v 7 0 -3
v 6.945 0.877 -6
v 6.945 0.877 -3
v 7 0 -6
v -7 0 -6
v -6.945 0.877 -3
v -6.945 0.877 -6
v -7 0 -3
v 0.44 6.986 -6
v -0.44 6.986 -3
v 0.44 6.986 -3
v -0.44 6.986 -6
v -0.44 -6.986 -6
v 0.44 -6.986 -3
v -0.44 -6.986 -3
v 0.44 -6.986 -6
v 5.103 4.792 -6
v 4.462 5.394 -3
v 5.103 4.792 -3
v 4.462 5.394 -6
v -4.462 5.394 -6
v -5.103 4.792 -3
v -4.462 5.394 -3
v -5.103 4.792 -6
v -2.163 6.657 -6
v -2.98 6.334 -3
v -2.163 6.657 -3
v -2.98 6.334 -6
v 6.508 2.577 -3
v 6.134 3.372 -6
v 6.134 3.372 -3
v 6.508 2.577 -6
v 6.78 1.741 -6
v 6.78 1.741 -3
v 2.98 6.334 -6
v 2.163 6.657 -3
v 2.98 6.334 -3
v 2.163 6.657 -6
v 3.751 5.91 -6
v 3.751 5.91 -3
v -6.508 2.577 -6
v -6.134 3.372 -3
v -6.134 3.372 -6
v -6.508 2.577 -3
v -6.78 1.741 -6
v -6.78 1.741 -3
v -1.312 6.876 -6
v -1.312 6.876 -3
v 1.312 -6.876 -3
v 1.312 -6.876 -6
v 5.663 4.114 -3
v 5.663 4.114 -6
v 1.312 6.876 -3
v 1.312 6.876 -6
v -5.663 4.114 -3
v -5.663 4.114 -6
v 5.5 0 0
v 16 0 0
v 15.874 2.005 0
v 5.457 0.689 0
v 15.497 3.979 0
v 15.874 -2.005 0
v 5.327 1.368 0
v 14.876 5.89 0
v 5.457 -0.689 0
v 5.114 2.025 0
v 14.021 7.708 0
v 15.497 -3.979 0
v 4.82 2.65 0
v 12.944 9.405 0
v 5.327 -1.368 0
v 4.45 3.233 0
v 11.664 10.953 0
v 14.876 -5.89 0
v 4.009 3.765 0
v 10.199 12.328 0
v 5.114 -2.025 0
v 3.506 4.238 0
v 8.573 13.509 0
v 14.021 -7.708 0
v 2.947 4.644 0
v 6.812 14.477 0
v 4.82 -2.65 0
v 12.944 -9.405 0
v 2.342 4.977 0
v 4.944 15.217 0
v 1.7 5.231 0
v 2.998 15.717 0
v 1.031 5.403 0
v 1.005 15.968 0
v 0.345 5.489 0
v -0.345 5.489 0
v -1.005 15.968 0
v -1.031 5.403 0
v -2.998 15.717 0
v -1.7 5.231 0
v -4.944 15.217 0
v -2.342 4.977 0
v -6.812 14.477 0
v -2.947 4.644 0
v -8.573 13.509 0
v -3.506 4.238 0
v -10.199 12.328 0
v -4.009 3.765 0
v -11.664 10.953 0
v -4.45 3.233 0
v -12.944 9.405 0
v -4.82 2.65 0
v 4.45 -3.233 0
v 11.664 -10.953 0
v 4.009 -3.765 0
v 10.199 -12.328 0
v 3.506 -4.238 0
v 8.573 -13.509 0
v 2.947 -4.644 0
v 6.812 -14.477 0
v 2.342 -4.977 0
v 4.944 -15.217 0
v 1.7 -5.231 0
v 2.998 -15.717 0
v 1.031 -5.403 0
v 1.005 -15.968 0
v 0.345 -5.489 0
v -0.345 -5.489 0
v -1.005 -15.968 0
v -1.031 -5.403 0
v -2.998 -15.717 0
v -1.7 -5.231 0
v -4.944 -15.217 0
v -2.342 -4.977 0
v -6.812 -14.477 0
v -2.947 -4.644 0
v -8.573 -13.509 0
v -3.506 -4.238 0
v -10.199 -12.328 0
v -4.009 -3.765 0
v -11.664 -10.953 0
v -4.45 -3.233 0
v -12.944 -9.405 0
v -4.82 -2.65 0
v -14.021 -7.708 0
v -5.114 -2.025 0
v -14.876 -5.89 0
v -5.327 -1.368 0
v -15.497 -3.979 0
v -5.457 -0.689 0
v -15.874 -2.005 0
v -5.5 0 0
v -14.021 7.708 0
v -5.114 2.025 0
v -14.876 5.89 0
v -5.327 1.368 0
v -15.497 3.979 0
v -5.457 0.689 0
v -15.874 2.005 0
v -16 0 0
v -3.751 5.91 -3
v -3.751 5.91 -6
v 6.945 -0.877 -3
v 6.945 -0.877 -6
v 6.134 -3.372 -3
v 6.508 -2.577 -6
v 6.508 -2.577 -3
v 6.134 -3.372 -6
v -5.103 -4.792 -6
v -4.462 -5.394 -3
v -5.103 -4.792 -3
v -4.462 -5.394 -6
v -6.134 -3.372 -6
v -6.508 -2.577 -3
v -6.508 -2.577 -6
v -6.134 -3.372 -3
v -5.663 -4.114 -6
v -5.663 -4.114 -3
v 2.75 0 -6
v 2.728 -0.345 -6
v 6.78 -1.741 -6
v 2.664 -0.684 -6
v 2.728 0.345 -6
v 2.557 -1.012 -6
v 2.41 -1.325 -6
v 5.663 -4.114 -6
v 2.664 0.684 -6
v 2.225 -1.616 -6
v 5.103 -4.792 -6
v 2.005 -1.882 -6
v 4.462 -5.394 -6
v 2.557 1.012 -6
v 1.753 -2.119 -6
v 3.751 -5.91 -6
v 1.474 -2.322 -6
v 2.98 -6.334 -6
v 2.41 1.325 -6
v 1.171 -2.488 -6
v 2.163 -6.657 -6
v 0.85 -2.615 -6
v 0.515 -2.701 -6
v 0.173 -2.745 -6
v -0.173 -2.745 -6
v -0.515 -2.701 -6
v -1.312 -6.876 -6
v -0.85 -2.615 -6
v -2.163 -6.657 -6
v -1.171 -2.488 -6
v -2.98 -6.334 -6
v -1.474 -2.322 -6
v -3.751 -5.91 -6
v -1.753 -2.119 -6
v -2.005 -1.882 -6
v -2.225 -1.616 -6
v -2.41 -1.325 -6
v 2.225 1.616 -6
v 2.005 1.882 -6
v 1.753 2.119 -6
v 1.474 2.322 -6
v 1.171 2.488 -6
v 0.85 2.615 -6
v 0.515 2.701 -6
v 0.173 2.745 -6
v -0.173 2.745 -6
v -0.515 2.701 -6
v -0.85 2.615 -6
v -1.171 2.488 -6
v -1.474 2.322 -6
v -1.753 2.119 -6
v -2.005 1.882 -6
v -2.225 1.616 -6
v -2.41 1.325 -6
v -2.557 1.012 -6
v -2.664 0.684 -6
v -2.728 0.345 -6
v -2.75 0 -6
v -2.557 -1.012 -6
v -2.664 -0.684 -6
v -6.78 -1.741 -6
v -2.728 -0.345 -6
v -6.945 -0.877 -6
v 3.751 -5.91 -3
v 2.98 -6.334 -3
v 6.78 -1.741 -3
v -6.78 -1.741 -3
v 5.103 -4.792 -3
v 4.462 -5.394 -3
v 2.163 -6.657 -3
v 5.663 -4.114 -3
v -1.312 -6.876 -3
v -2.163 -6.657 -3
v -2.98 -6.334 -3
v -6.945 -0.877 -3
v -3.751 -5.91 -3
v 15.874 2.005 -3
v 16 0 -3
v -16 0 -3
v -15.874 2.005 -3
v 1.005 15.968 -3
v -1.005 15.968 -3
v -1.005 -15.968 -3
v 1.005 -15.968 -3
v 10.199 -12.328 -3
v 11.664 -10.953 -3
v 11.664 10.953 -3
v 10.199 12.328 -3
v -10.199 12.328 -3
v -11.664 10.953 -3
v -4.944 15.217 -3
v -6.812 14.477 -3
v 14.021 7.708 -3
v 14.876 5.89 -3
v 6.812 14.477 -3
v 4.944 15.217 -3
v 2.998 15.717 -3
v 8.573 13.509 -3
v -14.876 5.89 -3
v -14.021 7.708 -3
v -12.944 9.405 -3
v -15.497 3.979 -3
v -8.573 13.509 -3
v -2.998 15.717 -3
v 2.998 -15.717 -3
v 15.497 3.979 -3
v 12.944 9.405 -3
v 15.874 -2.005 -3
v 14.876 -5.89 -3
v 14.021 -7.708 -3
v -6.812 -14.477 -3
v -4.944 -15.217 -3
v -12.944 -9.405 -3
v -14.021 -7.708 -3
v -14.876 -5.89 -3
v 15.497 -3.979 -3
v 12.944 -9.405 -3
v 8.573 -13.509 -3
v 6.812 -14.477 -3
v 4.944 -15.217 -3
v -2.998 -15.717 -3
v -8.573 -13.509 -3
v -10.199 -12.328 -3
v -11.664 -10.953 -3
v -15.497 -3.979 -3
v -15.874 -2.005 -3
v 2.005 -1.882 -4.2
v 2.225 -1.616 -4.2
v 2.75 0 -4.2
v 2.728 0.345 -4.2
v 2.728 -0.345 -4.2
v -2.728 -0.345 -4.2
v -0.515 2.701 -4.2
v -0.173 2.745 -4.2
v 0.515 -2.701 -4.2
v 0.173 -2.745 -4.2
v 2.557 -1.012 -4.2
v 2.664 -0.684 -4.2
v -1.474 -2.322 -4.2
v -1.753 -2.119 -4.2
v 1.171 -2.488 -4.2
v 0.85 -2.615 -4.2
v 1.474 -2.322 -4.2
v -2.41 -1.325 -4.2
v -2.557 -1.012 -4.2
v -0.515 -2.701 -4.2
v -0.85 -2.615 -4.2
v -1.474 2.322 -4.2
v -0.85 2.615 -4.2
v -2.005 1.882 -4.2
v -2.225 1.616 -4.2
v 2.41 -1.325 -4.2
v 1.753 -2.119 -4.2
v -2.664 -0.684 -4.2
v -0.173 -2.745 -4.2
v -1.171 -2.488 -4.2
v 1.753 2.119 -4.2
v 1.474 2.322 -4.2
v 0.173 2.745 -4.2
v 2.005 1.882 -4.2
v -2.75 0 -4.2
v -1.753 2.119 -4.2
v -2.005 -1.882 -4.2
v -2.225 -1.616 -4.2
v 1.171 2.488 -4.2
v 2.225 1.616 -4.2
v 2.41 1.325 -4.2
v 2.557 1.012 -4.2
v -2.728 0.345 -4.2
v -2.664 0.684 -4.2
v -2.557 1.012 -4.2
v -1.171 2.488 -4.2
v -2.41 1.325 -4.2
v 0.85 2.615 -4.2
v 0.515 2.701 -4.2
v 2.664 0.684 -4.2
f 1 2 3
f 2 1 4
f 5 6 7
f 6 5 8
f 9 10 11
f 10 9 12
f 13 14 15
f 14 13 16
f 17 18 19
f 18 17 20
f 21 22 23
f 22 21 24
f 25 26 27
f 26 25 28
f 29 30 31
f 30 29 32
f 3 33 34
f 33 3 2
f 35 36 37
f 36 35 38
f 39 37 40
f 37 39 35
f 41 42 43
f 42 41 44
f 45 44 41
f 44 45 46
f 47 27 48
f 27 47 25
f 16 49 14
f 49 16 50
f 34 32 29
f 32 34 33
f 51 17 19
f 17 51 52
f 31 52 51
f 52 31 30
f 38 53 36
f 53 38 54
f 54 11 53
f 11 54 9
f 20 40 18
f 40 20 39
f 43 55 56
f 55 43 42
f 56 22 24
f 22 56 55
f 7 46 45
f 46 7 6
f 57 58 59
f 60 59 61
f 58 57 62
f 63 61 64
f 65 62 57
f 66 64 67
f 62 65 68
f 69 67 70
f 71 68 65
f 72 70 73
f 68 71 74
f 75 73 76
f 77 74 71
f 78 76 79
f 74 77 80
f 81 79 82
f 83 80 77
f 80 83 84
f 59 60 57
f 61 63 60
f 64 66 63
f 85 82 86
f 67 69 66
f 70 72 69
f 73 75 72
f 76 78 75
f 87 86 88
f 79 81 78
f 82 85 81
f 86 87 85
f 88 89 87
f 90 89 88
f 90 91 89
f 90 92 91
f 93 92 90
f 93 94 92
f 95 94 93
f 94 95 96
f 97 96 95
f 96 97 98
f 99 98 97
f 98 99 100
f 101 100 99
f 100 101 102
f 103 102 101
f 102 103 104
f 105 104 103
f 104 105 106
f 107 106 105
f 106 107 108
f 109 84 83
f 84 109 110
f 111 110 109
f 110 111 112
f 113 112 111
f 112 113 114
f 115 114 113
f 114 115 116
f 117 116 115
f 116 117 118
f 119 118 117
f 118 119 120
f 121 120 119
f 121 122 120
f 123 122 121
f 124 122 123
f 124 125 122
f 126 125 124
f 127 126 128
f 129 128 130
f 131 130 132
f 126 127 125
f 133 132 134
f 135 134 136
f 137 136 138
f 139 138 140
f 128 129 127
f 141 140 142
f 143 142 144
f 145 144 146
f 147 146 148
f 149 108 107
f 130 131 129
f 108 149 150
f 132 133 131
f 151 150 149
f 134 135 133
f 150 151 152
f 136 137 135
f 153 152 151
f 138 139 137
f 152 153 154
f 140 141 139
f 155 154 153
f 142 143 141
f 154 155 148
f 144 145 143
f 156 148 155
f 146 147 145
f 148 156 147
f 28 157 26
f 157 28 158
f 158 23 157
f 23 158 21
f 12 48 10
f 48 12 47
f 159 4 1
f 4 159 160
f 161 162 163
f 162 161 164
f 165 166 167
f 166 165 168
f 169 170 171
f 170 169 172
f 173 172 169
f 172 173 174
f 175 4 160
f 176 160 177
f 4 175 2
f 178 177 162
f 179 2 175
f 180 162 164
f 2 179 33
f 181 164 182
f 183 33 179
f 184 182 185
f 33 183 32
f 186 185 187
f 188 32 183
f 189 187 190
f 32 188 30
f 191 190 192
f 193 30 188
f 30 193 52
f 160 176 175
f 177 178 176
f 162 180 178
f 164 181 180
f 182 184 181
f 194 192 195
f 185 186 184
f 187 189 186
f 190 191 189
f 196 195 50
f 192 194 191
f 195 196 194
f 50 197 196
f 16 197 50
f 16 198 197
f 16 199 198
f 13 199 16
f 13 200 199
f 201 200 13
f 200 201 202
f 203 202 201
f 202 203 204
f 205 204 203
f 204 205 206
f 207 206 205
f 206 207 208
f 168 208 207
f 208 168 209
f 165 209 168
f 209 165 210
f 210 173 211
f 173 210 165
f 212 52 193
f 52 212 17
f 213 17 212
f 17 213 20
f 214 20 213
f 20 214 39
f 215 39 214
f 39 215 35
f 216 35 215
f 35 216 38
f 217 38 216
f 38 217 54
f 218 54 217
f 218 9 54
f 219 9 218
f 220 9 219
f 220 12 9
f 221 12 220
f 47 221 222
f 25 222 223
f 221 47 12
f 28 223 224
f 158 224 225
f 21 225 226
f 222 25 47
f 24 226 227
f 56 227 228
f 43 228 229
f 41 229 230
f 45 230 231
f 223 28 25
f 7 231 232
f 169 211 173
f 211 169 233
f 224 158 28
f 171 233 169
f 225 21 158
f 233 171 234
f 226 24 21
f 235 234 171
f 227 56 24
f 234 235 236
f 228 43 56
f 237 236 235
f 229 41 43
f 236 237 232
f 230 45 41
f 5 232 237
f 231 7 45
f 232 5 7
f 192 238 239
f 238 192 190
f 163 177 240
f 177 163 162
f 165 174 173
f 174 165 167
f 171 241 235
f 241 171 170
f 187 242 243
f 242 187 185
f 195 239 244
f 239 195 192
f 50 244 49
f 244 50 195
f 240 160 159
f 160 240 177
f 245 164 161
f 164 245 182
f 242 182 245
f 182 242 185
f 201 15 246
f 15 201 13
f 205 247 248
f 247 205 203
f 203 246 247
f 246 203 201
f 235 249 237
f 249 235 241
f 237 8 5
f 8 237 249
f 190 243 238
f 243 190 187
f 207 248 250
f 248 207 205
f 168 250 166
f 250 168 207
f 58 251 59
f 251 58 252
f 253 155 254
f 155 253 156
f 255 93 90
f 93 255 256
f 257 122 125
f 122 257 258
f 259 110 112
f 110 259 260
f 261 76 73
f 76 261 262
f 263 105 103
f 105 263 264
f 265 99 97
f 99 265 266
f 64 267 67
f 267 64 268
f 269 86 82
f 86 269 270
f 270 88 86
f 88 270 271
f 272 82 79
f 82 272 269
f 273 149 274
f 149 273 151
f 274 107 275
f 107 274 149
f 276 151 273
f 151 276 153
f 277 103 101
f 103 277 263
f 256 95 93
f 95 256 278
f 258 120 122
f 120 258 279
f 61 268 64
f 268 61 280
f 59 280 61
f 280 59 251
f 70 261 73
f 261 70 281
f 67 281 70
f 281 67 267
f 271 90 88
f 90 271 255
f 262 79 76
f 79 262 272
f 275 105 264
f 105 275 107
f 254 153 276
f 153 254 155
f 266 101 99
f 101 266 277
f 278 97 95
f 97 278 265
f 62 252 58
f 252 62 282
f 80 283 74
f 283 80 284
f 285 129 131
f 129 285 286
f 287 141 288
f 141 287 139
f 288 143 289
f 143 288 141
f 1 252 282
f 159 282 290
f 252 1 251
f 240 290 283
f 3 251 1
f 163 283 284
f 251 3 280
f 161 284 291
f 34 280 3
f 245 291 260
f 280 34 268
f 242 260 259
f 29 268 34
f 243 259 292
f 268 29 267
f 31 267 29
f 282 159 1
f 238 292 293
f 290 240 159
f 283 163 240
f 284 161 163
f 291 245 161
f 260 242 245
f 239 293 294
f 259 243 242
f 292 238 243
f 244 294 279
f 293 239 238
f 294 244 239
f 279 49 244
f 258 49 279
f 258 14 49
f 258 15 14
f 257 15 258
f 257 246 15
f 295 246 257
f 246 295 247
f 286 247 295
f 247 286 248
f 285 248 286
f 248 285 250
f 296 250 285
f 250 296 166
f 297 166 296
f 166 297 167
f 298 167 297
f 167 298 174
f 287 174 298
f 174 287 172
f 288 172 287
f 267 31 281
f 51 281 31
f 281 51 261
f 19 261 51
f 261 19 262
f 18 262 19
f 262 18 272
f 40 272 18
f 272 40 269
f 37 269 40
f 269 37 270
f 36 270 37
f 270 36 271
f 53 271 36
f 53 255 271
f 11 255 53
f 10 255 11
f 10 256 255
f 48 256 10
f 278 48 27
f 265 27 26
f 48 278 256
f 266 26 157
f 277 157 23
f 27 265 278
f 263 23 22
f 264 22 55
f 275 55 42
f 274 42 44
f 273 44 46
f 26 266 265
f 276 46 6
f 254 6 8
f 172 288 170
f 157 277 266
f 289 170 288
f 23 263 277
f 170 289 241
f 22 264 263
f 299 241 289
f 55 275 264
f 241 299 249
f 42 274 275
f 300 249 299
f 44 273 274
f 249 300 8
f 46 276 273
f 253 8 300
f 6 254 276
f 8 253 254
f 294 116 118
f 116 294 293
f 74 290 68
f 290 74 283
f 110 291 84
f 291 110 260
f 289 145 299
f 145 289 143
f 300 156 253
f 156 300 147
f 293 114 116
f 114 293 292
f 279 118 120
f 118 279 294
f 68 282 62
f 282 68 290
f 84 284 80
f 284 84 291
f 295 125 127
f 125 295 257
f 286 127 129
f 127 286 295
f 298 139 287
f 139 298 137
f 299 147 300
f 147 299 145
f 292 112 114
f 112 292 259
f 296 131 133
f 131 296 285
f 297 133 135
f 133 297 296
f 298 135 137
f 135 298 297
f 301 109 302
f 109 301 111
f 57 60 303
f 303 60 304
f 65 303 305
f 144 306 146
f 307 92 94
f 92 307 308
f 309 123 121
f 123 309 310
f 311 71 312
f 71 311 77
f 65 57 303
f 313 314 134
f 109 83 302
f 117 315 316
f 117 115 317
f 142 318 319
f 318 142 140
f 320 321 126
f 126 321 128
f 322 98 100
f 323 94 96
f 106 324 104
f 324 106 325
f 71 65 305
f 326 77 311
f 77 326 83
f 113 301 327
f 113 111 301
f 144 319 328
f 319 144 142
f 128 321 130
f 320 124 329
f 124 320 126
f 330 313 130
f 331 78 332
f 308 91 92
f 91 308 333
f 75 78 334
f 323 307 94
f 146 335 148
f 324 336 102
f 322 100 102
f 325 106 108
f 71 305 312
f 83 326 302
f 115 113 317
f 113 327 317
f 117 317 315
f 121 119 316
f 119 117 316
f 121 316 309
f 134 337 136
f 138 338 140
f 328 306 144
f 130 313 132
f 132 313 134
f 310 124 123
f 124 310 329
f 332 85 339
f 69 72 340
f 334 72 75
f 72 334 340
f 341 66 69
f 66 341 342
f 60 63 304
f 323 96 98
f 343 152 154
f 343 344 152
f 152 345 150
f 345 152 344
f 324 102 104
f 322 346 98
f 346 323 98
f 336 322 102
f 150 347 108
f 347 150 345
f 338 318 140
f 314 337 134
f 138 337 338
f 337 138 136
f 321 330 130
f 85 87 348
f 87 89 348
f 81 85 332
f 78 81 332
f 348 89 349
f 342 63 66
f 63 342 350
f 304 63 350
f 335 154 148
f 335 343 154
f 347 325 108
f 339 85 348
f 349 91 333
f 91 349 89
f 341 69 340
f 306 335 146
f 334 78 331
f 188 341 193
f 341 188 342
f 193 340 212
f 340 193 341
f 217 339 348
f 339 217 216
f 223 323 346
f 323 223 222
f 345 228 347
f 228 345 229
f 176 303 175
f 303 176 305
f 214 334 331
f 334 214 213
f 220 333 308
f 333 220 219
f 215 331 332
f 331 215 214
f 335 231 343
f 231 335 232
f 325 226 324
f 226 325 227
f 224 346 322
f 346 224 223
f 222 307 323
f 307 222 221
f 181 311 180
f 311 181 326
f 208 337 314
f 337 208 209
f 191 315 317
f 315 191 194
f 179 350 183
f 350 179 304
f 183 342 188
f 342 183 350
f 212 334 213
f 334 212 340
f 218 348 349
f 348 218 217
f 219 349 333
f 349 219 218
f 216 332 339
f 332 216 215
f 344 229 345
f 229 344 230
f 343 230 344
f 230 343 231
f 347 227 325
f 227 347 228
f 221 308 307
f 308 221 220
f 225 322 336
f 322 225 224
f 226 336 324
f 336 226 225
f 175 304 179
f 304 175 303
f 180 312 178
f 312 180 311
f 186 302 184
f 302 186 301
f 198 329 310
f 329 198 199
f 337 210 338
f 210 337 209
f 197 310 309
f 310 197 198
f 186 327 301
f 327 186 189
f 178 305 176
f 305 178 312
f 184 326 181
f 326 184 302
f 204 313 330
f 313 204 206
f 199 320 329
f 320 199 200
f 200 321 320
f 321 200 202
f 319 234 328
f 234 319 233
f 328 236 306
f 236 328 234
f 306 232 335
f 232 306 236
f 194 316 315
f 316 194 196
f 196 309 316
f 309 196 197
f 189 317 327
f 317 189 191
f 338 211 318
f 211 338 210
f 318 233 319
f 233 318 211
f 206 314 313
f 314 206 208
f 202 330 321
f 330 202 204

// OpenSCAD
$fn = 50;


difference() {
	union() {
		translate(v = [0, 0, -6.0000000000]) {
			cylinder(h = 6, r = 7.0000000000);
		}
		translate(v = [0, 0, -3.0000000000]) {
			cylinder(h = 3, r = 16.0000000000);
		}
	}
	union() {
		translate(v = [0, 0, 0]) {
			rotate(a = [0, 0, 0]) {
				difference() {
					union() {
						#translate(v = [0, 0, -6.0000000000]) {
							cylinder(h = 6, r = 2.2500000000);
						}
						#translate(v = [0, 0, -4.2000000000]) {
							cylinder(h = 4.2000000000, r1 = 2.7500000000, r2 = 5.5000000000);
						}
						#translate(v = [0, 0, -6.0000000000]) {
							cylinder(h = 6, r = 2.7500000000);
						}
						#translate(v = [0, 0, -6.0000000000]) {
							cylinder(h = 6, r = 2.2500000000);
						}
					}
					union();
				}
			}
		}
	}
}
